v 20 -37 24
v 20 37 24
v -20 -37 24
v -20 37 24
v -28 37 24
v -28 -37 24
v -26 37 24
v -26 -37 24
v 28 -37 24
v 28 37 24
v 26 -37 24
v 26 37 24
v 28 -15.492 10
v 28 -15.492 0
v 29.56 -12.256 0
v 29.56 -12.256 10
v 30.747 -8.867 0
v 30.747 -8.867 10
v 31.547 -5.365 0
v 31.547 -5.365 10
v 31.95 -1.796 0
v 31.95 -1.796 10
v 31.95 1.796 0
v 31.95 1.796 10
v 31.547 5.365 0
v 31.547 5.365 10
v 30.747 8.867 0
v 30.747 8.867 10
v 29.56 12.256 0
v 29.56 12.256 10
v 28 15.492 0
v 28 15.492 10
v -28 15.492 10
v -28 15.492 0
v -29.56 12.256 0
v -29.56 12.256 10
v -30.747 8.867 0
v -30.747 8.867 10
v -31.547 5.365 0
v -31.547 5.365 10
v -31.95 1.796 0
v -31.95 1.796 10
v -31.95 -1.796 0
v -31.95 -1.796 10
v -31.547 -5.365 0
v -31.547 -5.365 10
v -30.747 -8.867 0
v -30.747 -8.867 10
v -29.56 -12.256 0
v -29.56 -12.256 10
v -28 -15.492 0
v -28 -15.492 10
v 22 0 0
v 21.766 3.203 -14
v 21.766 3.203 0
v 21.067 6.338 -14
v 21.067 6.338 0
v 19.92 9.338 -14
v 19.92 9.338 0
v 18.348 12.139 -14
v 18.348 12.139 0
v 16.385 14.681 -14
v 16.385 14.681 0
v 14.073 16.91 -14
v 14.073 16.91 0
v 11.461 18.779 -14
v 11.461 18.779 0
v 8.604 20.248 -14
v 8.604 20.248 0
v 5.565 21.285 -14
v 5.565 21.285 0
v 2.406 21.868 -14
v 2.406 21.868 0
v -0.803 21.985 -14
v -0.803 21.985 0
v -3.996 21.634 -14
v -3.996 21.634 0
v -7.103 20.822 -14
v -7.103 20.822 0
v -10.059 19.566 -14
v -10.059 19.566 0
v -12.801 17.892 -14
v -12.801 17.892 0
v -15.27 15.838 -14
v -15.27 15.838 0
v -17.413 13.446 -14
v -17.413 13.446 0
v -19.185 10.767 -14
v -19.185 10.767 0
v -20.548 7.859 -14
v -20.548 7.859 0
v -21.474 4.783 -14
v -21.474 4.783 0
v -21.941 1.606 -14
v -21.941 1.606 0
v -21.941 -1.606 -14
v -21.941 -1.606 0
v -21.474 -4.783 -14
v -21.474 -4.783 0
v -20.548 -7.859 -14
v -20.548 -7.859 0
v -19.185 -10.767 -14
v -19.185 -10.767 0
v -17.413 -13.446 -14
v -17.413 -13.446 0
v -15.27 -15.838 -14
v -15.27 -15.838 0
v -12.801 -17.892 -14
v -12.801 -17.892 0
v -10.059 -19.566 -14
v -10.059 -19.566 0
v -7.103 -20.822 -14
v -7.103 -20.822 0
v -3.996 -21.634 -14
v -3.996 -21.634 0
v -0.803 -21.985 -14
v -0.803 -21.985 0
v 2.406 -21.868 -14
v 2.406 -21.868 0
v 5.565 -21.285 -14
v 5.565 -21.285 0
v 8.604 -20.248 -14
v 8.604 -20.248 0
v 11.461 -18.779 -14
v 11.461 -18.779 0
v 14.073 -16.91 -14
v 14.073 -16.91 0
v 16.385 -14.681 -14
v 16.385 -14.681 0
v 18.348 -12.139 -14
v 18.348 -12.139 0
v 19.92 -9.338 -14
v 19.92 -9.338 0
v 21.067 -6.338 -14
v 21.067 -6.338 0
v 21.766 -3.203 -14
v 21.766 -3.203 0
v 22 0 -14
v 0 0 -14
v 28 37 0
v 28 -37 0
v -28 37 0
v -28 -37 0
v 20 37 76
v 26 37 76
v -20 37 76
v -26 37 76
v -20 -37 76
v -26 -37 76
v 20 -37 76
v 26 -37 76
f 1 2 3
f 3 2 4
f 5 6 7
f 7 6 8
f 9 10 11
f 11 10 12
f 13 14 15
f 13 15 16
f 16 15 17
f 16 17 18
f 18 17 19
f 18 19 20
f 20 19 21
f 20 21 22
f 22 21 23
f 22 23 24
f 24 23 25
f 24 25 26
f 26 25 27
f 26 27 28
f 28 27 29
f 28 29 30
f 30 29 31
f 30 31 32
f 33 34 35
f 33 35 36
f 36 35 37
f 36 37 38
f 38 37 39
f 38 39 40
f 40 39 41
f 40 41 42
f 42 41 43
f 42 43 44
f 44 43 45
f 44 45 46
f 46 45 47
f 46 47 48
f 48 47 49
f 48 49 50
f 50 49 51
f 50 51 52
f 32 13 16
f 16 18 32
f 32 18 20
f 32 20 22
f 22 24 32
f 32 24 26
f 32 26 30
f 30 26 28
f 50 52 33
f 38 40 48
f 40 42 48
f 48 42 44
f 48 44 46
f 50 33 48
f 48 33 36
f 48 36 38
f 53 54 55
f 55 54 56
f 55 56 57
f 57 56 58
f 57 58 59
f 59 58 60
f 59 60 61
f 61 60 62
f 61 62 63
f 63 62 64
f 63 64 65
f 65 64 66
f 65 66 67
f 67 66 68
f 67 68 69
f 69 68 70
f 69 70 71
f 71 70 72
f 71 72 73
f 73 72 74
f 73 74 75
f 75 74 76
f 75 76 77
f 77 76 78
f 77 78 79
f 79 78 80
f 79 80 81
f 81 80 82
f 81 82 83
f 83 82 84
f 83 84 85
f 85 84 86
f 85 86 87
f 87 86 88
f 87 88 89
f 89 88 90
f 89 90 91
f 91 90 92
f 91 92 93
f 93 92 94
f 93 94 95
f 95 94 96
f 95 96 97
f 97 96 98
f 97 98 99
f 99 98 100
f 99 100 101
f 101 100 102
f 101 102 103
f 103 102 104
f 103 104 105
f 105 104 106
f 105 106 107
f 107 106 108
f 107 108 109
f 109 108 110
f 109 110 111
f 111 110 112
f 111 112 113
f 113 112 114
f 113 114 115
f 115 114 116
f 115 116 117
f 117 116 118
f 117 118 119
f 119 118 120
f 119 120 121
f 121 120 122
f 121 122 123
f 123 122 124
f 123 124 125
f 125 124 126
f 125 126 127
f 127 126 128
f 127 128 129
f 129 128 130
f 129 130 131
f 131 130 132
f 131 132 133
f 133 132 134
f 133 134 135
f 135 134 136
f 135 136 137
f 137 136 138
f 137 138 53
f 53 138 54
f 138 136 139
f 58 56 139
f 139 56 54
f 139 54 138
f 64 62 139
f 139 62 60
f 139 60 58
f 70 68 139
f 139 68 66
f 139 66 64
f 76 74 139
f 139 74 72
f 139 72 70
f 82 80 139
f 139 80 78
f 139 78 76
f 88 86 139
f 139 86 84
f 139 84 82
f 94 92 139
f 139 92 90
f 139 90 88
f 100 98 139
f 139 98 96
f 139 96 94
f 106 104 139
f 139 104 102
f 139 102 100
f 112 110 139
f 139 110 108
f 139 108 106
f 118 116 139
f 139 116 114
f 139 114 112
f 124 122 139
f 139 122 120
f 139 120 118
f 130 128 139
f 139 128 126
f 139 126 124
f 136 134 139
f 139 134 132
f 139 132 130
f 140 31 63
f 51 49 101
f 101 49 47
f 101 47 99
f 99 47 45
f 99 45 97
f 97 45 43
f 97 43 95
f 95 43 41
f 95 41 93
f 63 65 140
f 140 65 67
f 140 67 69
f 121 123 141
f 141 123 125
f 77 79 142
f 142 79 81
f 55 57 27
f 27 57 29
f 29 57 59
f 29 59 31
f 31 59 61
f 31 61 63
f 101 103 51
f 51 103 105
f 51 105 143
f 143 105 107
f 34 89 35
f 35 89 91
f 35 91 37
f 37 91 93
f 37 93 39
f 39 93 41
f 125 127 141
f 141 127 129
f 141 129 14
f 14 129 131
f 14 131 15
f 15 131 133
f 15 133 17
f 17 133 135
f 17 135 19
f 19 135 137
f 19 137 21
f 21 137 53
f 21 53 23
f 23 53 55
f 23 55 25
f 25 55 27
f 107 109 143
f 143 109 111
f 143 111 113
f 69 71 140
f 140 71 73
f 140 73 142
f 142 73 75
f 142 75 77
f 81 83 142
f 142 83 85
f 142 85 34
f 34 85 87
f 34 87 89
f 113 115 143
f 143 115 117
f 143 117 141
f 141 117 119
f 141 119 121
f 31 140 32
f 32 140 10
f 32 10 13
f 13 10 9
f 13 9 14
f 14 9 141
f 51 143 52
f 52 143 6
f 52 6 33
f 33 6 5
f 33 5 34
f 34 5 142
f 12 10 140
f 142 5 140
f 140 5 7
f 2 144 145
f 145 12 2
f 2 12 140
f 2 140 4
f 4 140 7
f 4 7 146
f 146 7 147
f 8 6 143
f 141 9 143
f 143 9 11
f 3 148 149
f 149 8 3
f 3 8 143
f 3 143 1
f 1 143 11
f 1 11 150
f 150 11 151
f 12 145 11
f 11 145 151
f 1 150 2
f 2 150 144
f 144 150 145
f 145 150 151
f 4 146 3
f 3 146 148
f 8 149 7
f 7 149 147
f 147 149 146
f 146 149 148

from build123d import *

# Parameters (mm, degrees)
SKETCH_1_R      = 22
EXTRUDE_1_DEPTH = 14
SKETCH_2_R      = 32
EXTRUDE_2_DEPTH = 10
SKETCH_3_W      = 56
SKETCH_3_H      = 74
EXTRUDE_3_DEPTH = 24
SKETCH_4_W      = 6
SKETCH_4_H      = 74
EXTRUDE_4_DEPTH = 76


with BuildPart() as part:
    # 草图1 → 凸台-拉伸1 (new body)
    with BuildSketch(Plane.XY):
        Circle(SKETCH_1_R)
    extrude(amount=-EXTRUDE_1_DEPTH)

    # 草图2 → 凸台-拉伸2 (add)
    with BuildSketch(Plane.XY):
        Circle(SKETCH_2_R)
    extrude(amount=EXTRUDE_2_DEPTH)

    # 草图3 → 凸台-拉伸3 (add)
    with BuildSketch(Plane.XY):
        Rectangle(SKETCH_3_W, SKETCH_3_H)
    extrude(amount=EXTRUDE_3_DEPTH)

    # 草图4 → 凸台-拉伸4 (add)
    with BuildSketch(Plane.XY):
        with Locations((23, 0)):
            Rectangle(SKETCH_4_W, SKETCH_4_H)
        with Locations((-23, 0)):
            Rectangle(SKETCH_4_W, SKETCH_4_H)
    extrude(amount=EXTRUDE_4_DEPTH)


solid = part.part
